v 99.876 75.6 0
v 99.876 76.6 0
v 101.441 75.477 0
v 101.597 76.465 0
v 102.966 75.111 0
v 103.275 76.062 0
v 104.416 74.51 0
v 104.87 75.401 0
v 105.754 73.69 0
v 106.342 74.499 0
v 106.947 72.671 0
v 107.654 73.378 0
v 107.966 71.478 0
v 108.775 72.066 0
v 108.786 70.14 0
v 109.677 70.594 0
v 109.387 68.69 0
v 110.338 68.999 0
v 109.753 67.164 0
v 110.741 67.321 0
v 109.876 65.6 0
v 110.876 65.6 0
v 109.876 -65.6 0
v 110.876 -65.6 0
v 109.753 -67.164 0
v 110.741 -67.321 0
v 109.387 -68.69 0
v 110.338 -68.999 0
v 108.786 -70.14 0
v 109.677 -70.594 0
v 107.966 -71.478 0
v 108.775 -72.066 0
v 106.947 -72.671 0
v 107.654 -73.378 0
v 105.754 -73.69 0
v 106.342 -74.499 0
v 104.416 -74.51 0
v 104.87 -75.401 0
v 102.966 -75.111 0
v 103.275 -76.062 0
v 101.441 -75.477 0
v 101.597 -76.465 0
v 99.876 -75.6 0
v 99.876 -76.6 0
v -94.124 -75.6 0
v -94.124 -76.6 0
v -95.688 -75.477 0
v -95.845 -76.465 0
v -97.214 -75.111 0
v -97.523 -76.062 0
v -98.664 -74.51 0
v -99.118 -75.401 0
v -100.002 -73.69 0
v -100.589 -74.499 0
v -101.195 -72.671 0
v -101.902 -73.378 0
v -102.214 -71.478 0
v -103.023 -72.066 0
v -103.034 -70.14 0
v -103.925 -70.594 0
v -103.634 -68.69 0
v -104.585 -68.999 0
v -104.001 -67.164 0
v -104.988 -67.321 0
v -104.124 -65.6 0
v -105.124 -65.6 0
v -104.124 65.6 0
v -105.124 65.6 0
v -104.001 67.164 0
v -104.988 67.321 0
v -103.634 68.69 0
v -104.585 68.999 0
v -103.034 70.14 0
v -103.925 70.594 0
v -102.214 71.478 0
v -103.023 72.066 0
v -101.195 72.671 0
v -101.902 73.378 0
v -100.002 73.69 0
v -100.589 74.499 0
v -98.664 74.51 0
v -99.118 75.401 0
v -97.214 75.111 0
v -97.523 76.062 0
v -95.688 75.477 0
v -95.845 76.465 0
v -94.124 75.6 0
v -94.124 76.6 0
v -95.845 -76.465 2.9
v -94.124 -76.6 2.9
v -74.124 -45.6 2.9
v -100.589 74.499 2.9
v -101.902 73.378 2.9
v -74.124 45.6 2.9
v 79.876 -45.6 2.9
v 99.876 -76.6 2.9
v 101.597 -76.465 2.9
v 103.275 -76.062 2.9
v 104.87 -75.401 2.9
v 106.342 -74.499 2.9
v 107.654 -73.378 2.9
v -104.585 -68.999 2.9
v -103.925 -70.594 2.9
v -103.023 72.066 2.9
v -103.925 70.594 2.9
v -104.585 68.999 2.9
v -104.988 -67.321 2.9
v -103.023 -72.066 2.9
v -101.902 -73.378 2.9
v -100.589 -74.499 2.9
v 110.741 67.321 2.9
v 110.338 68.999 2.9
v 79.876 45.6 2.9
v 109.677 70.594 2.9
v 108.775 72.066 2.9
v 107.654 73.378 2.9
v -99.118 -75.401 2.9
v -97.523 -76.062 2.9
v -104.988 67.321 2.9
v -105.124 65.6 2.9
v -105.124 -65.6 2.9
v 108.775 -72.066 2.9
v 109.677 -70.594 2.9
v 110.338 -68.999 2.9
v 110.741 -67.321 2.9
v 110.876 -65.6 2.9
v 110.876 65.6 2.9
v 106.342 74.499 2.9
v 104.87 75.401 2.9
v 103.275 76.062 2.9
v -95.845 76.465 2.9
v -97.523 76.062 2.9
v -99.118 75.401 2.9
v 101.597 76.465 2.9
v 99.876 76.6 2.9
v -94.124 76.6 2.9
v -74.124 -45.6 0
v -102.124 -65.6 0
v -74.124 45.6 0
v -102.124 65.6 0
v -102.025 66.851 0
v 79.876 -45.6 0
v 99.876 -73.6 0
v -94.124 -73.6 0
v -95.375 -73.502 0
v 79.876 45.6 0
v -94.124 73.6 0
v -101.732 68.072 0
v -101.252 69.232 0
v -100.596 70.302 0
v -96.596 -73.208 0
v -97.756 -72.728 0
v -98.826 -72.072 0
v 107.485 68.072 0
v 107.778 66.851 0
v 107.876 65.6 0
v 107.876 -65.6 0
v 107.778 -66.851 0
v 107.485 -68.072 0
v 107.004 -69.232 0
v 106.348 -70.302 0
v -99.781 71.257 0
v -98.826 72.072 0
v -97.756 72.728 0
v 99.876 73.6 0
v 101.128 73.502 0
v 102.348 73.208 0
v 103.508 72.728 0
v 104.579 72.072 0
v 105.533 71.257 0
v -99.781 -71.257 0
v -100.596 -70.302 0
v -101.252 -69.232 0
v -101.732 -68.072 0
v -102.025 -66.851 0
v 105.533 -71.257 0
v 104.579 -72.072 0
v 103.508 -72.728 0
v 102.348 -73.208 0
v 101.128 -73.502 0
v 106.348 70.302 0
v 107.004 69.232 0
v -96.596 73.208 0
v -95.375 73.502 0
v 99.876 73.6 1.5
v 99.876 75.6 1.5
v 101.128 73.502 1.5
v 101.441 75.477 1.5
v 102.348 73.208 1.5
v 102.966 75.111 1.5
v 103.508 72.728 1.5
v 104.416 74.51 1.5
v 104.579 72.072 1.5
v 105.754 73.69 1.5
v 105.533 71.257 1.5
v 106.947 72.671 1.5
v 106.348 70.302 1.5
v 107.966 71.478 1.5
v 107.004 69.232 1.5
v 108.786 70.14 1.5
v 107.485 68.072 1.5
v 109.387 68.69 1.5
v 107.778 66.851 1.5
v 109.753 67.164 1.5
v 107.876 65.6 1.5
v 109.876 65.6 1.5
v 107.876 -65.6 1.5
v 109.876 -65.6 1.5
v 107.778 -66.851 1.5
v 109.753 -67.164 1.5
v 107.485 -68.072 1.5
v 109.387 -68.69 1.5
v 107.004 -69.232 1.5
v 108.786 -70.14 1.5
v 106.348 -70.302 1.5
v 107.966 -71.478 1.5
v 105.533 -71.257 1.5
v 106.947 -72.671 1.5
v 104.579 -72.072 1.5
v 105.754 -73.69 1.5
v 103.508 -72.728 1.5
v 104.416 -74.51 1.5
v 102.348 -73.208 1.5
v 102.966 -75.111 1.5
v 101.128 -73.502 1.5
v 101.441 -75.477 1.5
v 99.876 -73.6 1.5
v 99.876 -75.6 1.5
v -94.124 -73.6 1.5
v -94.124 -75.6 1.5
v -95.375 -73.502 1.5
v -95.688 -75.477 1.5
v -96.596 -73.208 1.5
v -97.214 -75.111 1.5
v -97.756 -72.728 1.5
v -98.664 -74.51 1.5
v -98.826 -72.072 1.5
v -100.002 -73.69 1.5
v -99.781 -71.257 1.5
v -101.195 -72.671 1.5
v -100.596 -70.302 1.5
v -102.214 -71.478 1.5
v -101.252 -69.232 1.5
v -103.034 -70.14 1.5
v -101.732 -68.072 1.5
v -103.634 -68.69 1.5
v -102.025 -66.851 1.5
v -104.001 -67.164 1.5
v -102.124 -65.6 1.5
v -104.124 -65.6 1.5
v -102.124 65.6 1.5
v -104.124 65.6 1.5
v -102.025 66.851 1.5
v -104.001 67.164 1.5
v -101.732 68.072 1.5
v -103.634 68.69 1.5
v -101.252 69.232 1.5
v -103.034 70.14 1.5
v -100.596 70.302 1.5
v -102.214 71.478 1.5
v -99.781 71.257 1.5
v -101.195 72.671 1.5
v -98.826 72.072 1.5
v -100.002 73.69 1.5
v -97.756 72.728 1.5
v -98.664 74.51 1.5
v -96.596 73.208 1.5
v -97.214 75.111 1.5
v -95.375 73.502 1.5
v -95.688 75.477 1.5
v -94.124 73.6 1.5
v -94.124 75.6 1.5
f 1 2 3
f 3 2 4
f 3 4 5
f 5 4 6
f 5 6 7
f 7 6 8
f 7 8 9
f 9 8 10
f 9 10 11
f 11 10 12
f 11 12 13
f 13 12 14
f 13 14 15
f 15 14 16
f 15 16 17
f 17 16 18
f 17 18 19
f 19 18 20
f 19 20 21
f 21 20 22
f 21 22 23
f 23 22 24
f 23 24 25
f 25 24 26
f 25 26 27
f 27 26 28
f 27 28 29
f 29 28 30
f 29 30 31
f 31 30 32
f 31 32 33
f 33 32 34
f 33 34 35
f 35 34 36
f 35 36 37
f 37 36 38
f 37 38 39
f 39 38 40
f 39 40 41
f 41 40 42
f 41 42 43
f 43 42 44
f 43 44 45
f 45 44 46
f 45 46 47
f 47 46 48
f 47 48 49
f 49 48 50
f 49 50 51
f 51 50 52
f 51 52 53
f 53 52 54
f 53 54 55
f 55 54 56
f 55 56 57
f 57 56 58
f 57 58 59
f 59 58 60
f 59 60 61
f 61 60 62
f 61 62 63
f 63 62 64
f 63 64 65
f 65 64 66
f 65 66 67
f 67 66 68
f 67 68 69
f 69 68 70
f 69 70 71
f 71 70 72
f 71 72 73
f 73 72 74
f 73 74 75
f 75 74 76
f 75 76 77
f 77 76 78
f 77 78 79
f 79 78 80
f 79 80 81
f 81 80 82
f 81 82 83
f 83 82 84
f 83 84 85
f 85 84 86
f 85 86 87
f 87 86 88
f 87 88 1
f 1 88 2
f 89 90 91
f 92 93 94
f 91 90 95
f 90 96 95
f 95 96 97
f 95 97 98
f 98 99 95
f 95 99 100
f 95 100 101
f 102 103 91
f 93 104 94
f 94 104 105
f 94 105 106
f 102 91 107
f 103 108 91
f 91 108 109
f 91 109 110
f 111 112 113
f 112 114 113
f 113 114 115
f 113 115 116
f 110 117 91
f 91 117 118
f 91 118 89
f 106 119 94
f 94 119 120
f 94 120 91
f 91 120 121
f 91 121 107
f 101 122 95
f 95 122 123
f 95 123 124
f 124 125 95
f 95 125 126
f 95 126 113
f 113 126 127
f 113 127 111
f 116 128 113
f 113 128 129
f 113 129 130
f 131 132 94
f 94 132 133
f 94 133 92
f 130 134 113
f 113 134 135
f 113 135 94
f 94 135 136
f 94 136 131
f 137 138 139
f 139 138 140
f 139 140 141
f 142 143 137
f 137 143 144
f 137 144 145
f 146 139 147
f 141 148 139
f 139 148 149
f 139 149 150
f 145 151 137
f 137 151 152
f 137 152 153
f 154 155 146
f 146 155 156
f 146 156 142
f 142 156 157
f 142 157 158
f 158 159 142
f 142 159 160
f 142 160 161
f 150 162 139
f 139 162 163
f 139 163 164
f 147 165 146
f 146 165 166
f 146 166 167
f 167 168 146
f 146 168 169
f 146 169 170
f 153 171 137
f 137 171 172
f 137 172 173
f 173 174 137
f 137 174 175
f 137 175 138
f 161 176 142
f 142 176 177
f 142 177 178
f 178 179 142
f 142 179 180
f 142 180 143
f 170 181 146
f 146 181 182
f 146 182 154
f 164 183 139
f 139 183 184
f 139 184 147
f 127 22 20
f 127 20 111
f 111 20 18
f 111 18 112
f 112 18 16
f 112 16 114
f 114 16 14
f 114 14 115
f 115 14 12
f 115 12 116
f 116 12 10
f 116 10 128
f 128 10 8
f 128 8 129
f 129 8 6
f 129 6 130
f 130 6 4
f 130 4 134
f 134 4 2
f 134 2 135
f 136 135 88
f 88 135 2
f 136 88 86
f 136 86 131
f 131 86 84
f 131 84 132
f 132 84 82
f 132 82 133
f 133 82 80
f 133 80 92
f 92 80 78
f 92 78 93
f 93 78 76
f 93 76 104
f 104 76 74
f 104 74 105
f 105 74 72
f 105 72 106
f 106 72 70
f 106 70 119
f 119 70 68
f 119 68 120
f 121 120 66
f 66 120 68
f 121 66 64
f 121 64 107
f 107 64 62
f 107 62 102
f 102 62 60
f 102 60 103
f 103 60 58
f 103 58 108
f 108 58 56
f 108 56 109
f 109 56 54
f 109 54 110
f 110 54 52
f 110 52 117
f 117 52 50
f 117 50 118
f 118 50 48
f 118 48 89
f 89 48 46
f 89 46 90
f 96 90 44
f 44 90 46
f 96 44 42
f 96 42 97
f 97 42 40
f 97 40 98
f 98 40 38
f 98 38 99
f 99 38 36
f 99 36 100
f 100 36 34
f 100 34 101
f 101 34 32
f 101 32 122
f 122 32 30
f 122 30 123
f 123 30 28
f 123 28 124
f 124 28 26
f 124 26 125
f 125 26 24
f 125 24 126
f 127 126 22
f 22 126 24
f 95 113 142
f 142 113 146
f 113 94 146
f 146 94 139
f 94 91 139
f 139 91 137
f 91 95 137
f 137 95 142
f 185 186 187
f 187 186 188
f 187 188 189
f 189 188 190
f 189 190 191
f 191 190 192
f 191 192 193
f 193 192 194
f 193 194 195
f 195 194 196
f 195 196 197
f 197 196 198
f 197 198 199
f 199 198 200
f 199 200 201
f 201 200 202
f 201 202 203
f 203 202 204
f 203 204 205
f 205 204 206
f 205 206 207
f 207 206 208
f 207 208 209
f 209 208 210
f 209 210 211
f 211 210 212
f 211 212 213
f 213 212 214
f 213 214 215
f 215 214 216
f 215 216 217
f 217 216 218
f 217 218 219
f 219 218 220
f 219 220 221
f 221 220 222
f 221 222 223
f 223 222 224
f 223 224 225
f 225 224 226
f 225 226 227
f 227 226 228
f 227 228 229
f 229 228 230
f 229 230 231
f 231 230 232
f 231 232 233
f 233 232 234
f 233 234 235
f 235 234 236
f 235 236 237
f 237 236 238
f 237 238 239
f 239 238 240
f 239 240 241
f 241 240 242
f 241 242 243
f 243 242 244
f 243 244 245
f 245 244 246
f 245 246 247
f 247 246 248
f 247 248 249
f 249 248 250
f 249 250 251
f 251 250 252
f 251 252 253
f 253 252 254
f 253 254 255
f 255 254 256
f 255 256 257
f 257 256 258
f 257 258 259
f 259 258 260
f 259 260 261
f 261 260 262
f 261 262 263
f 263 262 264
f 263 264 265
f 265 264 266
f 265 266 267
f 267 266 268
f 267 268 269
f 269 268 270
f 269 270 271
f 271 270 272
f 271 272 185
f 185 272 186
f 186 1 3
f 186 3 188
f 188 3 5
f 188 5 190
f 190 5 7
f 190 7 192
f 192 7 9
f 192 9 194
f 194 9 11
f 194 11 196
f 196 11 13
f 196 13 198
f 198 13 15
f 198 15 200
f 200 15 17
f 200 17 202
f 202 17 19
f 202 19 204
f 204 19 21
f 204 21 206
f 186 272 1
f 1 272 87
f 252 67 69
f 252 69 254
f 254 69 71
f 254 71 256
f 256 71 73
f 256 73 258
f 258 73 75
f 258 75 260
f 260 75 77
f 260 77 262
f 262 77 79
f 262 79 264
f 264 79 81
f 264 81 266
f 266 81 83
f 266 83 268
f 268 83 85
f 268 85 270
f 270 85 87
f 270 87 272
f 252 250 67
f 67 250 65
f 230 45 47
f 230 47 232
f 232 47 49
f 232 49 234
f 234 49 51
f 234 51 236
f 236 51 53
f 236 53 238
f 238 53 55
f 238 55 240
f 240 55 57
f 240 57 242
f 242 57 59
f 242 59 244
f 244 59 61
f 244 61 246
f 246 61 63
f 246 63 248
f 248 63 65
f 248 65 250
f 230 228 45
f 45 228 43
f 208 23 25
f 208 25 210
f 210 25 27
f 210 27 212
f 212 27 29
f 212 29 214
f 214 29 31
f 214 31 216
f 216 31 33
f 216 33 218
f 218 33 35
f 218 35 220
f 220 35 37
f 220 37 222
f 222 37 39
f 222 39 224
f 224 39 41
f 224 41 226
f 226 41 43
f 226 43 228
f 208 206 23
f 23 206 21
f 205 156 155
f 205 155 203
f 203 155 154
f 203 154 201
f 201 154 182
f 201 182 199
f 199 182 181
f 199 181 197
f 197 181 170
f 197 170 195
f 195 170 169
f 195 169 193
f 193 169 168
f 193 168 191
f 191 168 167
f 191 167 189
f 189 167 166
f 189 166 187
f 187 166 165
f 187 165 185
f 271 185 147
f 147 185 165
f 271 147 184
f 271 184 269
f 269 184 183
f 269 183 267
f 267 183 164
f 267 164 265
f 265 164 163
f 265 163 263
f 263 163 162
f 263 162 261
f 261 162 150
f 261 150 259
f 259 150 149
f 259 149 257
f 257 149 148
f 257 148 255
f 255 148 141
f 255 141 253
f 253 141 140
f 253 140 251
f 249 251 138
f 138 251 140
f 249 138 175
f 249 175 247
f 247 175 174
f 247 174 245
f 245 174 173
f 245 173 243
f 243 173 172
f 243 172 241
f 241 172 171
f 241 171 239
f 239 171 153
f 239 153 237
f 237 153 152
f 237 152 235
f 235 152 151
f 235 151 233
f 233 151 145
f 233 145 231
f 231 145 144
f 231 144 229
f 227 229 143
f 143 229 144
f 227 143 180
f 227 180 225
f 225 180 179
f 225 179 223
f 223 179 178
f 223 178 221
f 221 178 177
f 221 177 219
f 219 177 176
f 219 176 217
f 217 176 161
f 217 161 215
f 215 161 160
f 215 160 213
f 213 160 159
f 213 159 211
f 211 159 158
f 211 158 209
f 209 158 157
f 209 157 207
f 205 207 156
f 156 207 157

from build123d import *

# Parameters (mm, degrees)
SKETCH1_W           = 154
SKETCH1_H           = 91.2
BOSS_EXTRUDE1_DEPTH = 2.9
CUT_EXTRUDE3_DEPTH  = 1.5


with BuildPart() as part:
    # Sketch1 → Boss-Extrude1 (new body)
    with BuildSketch(Plane.XY):
        with BuildLine():
            Line((99.87625, 76.6), (-94.12375, 76.6))
            ThreePointArc((-94.12375, 76.6), (-101.901924593, 73.378174593), (-105.12375, 65.6))
            Line((-105.12375, 65.6), (-105.12375, -65.6))
            ThreePointArc((-105.12375, -65.6), (-101.901924593, -73.378174593), (-94.12375, -76.6))
            Line((-94.12375, -76.6), (99.87625, -76.6))
            ThreePointArc((99.87625, -76.6), (107.654424593, -73.378174593), (110.87625, -65.6))
            Line((110.87625, -65.6), (110.87625, 65.6))
            ThreePointArc((110.87625, 65.6), (107.654424593, 73.378174593), (99.87625, 76.6))
        make_face()
        with Locations((2.87625, 0)):
            Rectangle(SKETCH1_W, SKETCH1_H, mode=Mode.SUBTRACT)
    extrude(amount=BOSS_EXTRUDE1_DEPTH)

    # Sketch2 → Cut-Extrude3 (cut)
    with BuildSketch(Plane.XY):
        with BuildLine():
            Line((99.87625, 75.6), (-94.12375, 75.6))
            ThreePointArc((-94.12375, 75.6), (-101.194817812, 72.671067812), (-104.12375, 65.6))
            Line((-104.12375, 65.6), (-104.12375, -65.6))
            ThreePointArc((-104.12375, -65.6), (-101.194817812, -72.671067812), (-94.12375, -75.6))
            Line((-94.12375, -75.6), (99.87625, -75.6))
            ThreePointArc((99.87625, -75.6), (106.947317812, -72.671067812), (109.87625, -65.6))
            Line((109.87625, -65.6), (109.87625, 65.6))
            ThreePointArc((109.87625, 65.6), (106.947317812, 72.671067812), (99.87625, 75.6))
        make_face()
        with BuildLine():
            Line((99.87625, 73.6), (-94.12375, 73.6))
            ThreePointArc((-94.12375, 73.6), (-99.780604249, 71.256854249), (-102.12375, 65.6))
            Line((-102.12375, 65.6), (-102.12375, -65.6))
            ThreePointArc((-102.12375, -65.6), (-99.780604249, -71.256854249), (-94.12375, -73.6))
            Line((-94.12375, -73.6), (99.87625, -73.6))
            ThreePointArc((99.87625, -73.6), (105.533104249, -71.256854249), (107.87625, -65.6))
            Line((107.87625, -65.6), (107.87625, 65.6))
            ThreePointArc((107.87625, 65.6), (105.533104249, 71.256854249), (99.87625, 73.6))
        make_face(mode=Mode.SUBTRACT)
    extrude(amount=CUT_EXTRUDE3_DEPTH, mode=Mode.SUBTRACT)


solid = part.part
